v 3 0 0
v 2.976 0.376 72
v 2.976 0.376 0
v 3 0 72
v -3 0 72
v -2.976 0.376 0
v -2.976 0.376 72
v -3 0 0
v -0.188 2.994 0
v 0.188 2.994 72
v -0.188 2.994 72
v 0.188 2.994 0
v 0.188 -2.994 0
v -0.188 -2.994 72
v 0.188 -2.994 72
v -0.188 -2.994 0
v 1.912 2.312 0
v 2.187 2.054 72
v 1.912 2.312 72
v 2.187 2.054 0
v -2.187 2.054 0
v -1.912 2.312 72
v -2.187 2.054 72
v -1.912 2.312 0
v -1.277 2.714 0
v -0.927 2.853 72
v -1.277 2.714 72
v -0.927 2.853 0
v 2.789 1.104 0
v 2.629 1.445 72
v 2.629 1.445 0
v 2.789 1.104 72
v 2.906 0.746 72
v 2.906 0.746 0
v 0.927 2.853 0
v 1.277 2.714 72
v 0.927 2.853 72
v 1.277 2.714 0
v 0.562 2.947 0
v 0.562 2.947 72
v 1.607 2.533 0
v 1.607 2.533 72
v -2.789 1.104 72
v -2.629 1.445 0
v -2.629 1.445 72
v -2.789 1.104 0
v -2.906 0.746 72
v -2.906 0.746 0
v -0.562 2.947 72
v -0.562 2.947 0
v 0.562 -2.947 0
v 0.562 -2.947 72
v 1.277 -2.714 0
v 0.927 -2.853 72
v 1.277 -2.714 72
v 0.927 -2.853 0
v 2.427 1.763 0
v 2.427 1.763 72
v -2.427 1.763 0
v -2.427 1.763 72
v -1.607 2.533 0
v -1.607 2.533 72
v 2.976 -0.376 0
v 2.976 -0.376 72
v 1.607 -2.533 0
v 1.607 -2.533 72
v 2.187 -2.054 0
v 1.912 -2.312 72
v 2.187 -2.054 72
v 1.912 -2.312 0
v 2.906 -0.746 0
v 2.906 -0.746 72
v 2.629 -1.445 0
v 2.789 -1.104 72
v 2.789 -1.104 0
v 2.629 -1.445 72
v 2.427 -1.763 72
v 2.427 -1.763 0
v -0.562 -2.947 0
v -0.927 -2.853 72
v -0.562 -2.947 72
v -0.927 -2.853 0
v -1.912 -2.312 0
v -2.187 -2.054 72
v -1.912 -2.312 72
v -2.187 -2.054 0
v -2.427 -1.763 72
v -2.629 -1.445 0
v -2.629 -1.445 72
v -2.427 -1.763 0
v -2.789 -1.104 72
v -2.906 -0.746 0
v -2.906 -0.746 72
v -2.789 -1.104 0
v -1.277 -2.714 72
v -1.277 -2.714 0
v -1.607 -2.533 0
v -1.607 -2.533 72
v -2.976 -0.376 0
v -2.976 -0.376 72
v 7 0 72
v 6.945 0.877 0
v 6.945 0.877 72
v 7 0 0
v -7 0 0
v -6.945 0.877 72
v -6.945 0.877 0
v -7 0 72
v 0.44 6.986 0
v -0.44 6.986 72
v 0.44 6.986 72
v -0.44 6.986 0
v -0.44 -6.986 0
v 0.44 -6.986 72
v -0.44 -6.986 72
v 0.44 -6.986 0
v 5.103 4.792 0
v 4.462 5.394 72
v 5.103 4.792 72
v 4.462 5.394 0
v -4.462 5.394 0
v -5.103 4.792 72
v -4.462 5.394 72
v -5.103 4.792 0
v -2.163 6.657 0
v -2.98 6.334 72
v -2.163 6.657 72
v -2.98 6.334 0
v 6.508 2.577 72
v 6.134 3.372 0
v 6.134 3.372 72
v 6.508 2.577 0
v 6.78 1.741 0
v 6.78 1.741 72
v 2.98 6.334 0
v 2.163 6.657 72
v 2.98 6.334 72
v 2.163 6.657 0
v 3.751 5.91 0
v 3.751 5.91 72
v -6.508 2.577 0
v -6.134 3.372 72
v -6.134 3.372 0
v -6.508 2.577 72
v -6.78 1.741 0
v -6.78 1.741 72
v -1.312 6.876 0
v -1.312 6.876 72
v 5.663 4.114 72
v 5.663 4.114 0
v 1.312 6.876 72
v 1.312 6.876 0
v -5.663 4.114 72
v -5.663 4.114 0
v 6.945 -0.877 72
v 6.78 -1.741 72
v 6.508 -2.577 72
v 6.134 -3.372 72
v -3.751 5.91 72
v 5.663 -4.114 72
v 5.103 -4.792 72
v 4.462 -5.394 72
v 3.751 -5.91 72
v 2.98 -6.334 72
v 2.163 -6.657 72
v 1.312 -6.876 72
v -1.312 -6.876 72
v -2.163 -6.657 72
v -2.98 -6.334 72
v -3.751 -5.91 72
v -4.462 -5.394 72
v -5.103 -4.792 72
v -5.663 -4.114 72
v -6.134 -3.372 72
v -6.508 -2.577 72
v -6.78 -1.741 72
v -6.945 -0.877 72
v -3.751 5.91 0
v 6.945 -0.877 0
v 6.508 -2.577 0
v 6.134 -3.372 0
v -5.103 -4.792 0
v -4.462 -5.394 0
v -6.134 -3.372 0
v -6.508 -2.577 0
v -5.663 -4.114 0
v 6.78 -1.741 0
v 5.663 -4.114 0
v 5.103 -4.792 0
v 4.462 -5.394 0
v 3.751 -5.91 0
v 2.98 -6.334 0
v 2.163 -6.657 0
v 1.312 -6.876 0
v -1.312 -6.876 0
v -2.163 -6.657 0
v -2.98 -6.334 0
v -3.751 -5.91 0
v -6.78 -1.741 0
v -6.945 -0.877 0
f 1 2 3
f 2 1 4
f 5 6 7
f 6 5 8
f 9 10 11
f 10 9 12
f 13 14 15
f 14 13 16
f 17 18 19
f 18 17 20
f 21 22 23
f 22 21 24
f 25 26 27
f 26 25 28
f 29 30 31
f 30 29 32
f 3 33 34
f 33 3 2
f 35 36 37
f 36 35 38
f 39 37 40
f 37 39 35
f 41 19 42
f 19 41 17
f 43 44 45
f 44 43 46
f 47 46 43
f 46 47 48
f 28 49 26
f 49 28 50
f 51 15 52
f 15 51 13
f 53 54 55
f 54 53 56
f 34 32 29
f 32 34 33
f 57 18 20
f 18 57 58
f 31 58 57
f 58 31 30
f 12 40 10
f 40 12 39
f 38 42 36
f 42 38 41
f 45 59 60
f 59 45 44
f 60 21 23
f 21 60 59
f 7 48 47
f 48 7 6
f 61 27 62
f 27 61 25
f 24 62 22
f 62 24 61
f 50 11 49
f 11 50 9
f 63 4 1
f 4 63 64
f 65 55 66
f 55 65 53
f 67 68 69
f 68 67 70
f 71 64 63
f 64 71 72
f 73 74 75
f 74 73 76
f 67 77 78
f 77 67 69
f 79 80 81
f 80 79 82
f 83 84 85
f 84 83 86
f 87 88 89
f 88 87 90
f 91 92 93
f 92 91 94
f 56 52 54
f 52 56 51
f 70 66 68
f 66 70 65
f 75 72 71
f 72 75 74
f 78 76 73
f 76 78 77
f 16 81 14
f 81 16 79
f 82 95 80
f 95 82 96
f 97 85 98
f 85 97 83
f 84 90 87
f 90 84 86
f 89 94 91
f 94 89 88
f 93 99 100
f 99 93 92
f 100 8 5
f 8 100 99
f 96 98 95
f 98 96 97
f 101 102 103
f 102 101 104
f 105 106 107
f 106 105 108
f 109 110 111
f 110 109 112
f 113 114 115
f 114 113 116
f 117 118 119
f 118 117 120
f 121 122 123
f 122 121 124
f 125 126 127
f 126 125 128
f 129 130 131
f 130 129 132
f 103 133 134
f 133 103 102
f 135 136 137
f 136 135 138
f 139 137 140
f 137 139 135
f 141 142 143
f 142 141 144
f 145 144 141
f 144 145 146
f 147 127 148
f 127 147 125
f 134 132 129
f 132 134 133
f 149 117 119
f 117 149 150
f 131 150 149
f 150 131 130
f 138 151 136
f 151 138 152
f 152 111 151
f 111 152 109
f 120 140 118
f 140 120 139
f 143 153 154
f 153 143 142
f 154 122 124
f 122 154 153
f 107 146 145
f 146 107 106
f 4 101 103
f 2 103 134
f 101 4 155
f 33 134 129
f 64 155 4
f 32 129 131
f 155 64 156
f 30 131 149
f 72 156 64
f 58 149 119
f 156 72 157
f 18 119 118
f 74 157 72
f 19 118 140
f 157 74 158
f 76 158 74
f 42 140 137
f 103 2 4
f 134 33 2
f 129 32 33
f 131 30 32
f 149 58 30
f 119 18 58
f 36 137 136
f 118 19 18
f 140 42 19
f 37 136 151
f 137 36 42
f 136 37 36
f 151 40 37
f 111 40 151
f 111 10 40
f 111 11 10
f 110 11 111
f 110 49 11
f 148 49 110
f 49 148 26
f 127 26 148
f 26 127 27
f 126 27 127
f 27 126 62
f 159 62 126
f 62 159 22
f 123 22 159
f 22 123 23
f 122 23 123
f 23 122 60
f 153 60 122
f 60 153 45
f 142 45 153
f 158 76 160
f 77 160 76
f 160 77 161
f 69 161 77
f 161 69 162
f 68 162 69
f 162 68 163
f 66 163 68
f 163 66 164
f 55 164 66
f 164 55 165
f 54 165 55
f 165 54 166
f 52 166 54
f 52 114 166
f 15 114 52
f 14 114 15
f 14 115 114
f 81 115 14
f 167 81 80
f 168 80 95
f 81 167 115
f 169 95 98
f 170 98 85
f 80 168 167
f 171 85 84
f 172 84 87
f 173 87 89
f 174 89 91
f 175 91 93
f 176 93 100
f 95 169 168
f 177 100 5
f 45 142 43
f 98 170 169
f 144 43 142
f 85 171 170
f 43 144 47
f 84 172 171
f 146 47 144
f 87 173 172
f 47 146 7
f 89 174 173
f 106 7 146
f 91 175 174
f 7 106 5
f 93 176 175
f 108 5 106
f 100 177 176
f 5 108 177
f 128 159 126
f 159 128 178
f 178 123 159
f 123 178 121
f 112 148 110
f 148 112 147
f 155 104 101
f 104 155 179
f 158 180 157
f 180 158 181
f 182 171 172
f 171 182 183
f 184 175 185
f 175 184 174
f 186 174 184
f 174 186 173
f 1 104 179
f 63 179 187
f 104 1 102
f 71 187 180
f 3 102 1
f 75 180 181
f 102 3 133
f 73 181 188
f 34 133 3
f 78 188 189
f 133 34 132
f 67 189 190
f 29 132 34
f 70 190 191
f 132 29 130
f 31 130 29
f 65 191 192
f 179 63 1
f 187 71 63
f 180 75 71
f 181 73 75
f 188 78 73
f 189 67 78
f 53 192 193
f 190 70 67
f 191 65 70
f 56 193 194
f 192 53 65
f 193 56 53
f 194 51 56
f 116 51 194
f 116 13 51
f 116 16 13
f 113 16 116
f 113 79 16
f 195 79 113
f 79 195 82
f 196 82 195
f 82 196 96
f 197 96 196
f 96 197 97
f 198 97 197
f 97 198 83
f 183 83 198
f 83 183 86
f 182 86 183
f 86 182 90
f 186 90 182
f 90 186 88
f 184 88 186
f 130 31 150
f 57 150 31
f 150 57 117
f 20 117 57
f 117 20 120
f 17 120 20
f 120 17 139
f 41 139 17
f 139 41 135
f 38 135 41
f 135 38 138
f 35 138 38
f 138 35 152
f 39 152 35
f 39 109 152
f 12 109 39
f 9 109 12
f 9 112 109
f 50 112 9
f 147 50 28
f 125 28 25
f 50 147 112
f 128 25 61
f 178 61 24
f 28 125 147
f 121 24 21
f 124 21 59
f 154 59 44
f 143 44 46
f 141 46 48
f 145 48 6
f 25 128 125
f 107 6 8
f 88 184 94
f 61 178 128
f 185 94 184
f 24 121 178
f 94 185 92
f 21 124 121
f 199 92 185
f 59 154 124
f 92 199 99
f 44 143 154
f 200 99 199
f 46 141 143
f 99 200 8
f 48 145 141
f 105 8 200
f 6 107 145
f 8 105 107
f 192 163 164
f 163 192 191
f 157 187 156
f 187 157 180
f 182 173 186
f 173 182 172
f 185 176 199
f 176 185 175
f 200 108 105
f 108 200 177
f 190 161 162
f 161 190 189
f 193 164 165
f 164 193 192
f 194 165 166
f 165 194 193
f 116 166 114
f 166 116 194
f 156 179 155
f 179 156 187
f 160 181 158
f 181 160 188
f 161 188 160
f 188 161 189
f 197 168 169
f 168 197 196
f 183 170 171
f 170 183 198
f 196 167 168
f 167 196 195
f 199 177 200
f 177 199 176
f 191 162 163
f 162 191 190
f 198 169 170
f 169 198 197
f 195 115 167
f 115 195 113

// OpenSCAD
$fn = 50;


difference() {
	union() {
		cylinder(h = 72, r = 7.0000000000);
	}
	union() {
		translate(v = [0.0000000000, 0.0000000000, -100.0000000000]) {
			cylinder(h = 200, r = 3.0000000000);
		}
		cylinder(h = 72, r = 1.5000000000);
		cylinder(h = 72, r = 1.5000000000);
		cylinder(h = 72, r = 1.5000000000);
	}
}
